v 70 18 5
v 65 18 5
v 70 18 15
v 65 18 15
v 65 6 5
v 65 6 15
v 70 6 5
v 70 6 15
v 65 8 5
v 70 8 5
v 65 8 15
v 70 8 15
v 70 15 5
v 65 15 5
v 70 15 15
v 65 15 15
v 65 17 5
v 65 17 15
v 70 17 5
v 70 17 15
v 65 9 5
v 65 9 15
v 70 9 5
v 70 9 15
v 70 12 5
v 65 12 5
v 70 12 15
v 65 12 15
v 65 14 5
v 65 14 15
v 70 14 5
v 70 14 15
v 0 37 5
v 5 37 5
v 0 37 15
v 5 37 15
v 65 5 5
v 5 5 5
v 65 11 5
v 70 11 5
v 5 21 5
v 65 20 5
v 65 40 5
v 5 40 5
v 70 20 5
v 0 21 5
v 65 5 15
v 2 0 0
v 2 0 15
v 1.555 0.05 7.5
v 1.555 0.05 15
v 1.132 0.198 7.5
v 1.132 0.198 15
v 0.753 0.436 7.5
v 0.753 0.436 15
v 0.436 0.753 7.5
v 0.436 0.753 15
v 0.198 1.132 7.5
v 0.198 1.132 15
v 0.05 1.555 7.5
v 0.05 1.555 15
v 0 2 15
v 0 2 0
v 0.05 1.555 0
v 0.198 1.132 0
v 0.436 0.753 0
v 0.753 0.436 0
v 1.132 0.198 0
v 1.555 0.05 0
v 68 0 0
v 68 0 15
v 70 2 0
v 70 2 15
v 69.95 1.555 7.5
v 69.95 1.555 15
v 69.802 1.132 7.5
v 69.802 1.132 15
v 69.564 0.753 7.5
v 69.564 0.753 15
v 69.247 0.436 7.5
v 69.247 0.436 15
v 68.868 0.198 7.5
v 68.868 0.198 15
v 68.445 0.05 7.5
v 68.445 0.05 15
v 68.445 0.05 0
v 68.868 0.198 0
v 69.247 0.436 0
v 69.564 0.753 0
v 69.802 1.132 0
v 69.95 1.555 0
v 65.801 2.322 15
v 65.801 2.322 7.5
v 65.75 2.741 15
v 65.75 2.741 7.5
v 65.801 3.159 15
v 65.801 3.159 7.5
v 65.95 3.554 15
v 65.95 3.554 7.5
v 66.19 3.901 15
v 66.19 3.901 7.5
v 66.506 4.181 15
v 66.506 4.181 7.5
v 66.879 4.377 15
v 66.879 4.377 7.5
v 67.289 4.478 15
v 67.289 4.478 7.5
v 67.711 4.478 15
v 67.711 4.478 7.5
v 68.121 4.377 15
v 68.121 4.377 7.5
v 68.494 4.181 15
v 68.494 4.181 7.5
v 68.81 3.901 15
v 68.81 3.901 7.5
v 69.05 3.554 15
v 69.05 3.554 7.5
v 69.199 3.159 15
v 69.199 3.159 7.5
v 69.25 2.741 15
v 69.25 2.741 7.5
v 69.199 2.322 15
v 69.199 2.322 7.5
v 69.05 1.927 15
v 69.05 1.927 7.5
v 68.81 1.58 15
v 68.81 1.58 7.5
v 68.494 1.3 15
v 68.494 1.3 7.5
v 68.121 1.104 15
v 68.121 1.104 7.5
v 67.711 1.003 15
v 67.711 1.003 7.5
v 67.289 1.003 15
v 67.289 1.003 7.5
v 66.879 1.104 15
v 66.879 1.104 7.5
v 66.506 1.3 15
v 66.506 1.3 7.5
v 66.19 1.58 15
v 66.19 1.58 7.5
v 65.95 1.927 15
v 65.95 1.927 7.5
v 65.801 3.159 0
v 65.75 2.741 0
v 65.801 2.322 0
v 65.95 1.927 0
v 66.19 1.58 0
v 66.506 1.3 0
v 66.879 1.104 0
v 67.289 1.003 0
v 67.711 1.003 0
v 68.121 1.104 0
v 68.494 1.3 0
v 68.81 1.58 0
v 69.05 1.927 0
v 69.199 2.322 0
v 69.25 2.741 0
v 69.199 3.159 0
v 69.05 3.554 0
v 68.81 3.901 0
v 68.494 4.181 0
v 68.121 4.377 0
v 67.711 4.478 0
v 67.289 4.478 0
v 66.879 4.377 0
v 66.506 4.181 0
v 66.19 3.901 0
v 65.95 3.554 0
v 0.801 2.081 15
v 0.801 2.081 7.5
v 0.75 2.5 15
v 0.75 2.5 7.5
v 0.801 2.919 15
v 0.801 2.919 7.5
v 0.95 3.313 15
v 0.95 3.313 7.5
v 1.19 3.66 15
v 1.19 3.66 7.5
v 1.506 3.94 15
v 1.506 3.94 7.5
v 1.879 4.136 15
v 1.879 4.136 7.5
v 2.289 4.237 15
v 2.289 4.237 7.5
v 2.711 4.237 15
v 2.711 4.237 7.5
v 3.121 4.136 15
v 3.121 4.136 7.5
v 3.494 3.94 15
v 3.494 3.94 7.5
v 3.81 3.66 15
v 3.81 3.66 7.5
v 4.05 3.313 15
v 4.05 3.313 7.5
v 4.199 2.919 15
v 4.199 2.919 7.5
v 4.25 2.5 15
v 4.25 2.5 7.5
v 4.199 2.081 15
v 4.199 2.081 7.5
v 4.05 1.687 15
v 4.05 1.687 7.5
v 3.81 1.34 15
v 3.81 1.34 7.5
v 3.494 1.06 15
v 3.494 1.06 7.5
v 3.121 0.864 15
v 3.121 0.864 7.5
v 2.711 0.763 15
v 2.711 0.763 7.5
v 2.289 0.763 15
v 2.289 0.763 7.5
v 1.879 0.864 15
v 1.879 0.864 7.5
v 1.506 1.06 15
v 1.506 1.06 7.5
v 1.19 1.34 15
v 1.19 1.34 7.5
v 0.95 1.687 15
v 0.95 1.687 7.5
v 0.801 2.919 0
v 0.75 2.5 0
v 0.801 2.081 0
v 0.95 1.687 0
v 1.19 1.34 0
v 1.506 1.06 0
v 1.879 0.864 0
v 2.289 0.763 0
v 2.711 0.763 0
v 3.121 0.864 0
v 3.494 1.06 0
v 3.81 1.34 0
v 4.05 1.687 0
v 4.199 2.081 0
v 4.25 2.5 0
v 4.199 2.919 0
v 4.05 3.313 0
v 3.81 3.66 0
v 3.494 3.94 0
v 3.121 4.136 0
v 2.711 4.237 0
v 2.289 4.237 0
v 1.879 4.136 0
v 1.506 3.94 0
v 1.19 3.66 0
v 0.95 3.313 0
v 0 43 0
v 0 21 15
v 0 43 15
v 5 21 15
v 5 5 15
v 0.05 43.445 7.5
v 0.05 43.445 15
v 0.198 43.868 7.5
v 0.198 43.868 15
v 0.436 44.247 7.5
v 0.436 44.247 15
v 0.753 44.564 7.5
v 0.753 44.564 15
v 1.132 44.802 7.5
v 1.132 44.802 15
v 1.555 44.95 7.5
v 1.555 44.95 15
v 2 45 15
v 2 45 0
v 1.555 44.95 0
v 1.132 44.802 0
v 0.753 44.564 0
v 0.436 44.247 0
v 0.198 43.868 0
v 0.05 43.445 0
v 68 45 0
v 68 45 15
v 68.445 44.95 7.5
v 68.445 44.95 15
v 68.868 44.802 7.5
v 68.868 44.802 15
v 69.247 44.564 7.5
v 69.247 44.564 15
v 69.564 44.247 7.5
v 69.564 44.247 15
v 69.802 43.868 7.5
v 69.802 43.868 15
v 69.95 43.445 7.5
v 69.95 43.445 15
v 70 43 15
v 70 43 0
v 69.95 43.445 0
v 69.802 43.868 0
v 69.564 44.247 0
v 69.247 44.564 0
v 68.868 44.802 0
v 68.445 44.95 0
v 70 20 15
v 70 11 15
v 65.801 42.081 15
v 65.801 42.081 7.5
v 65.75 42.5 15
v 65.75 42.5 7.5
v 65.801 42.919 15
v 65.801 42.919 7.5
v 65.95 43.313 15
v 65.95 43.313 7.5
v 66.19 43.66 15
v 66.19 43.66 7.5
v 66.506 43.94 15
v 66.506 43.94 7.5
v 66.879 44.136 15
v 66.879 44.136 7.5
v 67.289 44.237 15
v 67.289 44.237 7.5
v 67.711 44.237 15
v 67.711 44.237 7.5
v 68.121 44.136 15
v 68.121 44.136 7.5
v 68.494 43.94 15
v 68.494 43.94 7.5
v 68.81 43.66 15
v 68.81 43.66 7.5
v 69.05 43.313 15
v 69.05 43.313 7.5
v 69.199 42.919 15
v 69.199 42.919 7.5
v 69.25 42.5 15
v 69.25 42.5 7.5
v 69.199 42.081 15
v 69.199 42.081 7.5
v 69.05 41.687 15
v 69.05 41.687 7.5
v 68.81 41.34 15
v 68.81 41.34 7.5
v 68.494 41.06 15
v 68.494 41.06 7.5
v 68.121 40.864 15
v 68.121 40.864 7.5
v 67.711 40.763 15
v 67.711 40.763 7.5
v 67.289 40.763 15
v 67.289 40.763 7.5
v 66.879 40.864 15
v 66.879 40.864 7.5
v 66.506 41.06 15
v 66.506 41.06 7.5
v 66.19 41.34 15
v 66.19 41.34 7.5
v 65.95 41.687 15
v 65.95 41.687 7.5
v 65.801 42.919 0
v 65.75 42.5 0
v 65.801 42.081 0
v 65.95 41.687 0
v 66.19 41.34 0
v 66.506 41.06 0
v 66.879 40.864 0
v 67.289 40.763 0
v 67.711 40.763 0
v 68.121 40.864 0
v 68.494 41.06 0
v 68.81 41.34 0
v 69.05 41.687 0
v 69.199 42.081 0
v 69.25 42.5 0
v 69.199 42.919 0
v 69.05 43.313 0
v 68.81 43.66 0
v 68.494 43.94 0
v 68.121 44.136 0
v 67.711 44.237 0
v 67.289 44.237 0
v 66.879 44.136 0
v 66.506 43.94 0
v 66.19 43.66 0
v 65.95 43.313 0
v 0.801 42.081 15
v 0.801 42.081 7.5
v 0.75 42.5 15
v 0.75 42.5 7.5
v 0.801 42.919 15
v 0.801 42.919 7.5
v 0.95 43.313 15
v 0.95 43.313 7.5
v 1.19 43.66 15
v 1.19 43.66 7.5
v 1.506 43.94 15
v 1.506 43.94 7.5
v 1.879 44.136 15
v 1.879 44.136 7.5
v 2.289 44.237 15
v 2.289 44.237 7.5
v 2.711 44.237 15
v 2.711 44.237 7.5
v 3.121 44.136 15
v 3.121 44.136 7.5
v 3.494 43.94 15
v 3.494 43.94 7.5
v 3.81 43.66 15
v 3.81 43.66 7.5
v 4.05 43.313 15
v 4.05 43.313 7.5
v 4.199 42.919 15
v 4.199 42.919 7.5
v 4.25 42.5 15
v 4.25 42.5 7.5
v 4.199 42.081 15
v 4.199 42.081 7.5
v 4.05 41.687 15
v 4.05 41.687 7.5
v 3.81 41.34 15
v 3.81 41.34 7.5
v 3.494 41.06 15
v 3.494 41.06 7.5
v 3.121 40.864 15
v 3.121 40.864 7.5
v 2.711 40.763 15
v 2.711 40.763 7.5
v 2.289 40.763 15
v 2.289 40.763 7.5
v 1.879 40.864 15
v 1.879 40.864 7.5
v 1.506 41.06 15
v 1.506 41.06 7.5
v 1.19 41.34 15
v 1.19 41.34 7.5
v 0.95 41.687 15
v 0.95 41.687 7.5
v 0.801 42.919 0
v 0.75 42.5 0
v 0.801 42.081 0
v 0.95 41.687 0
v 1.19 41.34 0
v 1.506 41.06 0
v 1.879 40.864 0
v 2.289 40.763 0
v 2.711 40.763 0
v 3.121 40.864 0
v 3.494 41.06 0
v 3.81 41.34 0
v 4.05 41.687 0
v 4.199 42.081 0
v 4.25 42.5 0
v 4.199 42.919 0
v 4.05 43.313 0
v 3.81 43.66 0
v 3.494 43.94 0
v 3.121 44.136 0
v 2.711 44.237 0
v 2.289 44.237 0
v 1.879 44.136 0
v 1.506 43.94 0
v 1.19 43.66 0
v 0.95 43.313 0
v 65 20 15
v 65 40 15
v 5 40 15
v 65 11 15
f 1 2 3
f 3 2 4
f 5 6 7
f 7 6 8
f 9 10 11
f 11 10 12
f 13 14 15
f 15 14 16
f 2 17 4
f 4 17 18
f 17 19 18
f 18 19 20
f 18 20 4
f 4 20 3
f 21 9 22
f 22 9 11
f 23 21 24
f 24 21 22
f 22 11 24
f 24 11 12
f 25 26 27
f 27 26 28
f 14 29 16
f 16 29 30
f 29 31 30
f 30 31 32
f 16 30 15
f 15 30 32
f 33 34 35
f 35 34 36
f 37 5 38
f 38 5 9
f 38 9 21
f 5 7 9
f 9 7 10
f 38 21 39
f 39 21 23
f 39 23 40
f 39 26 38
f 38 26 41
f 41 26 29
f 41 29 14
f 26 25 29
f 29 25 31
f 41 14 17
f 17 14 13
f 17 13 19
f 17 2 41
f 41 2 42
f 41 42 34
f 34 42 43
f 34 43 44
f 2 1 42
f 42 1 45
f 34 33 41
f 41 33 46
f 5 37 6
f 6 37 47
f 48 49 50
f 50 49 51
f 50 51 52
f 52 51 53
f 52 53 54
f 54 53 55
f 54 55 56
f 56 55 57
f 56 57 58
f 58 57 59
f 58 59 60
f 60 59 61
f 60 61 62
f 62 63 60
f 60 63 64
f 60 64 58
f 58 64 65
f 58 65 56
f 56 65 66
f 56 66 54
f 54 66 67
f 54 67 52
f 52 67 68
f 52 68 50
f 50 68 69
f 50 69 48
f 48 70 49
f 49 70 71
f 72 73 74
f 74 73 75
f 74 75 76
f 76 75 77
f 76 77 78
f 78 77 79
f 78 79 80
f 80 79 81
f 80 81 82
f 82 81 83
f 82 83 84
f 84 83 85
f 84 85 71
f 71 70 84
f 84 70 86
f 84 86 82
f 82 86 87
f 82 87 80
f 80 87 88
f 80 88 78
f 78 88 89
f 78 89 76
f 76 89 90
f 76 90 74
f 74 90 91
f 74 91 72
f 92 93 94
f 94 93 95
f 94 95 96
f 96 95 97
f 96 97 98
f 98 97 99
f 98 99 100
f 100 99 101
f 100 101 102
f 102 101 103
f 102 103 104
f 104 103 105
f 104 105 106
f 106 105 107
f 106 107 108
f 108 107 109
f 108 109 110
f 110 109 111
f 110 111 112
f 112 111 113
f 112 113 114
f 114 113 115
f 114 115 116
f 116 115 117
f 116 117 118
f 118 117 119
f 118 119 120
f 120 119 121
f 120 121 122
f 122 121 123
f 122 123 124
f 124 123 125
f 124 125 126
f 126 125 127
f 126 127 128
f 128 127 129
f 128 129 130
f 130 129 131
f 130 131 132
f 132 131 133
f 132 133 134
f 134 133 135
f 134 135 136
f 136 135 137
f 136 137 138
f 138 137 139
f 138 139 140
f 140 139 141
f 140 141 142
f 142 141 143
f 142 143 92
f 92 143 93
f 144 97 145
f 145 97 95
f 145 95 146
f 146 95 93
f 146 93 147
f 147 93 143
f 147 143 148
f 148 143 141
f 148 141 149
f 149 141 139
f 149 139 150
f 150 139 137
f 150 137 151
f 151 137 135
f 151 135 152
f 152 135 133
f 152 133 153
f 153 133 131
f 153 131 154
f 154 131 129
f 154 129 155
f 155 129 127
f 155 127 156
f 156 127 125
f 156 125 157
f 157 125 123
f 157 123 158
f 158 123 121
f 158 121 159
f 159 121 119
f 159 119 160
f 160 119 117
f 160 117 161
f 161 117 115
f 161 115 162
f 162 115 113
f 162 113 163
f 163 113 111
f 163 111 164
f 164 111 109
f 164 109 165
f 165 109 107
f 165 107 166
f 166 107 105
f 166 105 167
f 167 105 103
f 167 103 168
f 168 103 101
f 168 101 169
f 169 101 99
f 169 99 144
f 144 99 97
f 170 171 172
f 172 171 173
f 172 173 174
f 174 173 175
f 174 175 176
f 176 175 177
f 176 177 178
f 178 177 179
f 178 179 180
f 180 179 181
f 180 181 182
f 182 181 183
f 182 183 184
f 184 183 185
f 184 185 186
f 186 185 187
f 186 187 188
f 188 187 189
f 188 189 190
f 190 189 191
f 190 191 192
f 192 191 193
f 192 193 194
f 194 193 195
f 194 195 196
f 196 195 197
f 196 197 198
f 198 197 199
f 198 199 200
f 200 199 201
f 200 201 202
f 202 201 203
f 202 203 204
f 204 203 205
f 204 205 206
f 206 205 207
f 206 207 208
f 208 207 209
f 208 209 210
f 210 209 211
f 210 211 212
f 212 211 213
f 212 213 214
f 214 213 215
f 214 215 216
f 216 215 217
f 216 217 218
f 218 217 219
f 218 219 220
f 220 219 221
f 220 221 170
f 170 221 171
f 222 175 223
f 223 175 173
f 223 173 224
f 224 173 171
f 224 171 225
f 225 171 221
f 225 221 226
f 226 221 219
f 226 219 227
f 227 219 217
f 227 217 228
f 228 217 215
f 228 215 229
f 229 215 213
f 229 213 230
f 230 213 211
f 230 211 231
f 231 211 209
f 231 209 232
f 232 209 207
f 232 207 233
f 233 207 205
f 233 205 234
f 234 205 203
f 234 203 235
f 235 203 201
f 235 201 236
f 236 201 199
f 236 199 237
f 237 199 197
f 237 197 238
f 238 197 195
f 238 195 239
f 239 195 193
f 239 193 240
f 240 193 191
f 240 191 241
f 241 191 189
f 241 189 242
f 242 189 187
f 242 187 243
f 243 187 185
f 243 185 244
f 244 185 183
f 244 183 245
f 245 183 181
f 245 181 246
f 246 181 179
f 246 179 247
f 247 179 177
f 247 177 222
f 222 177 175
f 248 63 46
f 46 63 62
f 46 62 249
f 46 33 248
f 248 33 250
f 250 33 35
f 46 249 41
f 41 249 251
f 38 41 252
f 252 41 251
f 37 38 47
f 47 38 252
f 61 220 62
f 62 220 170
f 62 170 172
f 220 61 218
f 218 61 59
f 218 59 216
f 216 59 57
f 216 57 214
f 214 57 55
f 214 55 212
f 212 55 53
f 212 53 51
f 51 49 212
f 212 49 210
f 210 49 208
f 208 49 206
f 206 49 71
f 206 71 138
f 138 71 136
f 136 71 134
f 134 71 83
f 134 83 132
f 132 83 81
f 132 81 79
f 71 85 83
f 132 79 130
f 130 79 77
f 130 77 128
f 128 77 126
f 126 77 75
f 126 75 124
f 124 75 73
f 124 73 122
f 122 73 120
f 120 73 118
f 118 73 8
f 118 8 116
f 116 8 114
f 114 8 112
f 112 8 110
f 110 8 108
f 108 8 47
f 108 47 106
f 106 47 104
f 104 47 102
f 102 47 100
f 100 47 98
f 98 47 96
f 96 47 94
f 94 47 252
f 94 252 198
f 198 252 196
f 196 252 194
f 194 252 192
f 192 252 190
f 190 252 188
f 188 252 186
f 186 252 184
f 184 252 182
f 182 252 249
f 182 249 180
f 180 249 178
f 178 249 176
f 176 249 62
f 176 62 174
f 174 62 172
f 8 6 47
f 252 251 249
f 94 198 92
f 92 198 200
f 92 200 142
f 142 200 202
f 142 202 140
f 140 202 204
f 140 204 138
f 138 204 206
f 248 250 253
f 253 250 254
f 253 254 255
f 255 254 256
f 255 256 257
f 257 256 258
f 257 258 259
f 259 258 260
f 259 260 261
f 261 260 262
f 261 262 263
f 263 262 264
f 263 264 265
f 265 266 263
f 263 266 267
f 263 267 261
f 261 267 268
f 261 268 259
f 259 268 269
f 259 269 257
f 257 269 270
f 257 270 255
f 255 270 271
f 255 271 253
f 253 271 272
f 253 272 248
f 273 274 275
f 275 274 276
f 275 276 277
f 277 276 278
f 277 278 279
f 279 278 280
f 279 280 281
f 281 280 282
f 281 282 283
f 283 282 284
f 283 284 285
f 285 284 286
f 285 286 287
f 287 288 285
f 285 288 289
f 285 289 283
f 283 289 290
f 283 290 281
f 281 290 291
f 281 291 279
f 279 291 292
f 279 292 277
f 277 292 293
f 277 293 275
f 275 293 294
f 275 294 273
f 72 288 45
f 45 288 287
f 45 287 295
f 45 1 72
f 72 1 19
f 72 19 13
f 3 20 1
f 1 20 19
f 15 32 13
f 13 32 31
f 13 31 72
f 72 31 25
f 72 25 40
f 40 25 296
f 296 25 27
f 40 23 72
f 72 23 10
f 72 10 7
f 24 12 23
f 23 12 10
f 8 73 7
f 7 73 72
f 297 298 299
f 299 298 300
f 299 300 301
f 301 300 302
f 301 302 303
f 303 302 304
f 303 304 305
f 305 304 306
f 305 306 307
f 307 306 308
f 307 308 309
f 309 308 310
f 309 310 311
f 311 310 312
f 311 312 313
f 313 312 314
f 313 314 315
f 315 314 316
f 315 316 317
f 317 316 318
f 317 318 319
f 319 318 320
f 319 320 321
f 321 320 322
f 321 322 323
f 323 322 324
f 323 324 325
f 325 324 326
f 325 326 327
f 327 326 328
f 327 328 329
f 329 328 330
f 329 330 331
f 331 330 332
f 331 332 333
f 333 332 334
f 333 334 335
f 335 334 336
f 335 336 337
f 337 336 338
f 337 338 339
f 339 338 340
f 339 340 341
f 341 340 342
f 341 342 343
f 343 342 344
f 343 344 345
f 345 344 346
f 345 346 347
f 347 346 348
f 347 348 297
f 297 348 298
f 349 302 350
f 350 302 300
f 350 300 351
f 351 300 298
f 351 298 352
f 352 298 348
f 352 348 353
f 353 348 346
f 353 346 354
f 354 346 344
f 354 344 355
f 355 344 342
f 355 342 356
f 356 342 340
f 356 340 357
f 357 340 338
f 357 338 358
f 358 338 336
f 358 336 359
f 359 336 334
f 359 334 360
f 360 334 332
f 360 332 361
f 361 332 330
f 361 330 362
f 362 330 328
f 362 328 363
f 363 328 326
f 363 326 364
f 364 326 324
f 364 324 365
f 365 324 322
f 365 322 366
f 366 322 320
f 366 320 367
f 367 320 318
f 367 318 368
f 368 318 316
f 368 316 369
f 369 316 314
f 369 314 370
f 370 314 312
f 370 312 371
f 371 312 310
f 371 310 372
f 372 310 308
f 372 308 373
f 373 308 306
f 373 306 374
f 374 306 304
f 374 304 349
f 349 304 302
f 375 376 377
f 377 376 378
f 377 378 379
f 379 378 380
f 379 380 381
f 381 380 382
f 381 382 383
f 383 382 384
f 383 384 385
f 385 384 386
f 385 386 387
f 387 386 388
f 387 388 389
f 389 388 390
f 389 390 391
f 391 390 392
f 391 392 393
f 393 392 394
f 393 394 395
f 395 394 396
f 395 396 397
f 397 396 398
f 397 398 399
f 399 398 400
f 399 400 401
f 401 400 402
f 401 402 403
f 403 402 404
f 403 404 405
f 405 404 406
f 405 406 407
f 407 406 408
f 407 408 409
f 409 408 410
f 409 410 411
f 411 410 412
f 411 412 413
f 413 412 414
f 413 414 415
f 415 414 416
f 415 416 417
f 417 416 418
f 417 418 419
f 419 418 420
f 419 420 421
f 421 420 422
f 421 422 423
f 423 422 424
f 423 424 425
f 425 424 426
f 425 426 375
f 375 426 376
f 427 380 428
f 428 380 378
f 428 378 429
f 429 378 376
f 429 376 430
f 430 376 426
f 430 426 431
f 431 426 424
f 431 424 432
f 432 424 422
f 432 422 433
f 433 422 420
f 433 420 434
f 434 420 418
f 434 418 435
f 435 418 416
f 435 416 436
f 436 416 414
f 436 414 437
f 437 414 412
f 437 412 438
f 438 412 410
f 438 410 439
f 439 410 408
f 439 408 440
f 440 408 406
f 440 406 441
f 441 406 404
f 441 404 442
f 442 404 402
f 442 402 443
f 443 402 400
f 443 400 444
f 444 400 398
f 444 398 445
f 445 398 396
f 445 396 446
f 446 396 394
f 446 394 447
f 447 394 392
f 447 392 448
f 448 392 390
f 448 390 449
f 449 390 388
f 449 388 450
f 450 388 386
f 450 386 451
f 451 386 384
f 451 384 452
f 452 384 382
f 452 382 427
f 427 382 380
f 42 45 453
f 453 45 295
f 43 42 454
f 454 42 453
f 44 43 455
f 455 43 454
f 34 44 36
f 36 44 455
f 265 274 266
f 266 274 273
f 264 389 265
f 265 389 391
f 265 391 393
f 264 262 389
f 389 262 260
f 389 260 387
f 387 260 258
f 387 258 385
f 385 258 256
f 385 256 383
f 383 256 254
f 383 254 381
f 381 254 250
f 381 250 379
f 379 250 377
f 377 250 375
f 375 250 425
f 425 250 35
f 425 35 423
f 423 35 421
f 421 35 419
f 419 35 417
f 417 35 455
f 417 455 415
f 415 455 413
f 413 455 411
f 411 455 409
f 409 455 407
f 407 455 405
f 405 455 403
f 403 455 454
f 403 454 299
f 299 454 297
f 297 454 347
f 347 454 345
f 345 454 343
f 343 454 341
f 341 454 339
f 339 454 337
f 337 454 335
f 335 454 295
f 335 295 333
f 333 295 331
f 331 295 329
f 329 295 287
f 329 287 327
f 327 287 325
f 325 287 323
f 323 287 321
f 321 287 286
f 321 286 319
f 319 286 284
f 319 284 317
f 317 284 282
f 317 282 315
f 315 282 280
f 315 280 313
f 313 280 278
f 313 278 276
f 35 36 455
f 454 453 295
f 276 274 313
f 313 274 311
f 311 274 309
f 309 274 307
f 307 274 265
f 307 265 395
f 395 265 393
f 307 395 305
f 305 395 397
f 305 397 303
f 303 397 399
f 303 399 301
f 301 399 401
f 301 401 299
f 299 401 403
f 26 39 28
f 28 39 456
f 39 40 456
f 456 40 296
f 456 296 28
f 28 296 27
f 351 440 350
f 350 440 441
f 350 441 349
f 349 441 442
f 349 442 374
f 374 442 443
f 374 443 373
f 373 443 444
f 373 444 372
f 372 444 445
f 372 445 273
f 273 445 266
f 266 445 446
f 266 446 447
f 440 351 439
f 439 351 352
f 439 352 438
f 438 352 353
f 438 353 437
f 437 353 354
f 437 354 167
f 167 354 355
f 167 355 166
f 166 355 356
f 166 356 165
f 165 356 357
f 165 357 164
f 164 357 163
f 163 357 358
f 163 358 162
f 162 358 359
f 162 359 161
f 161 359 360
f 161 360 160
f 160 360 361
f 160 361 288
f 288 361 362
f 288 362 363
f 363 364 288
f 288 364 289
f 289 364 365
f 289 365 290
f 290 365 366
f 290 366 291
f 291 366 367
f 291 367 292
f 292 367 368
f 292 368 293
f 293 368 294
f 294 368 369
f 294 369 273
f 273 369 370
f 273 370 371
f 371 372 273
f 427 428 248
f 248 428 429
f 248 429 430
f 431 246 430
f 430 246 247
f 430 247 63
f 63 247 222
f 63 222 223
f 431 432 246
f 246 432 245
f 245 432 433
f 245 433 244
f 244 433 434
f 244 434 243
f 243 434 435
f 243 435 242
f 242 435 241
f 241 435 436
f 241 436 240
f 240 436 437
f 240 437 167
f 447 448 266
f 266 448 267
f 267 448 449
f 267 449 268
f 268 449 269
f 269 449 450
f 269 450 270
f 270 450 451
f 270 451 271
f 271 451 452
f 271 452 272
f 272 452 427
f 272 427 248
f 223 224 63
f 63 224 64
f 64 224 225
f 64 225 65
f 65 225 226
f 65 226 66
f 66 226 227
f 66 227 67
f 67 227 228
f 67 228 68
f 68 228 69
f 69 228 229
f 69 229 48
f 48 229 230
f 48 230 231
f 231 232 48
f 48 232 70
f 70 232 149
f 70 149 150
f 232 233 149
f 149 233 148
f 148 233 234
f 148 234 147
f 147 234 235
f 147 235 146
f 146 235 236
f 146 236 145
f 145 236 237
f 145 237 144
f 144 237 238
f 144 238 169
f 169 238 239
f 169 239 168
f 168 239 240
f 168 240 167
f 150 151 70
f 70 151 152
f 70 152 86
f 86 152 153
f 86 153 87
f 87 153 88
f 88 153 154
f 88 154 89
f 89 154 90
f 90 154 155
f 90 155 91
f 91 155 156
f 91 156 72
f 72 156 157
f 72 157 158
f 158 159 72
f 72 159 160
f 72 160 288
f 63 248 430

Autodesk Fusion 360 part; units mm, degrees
sketch "Sketch1" plane through (0, 0, 0) normal (0, 0, 1) x (1, 0, 0)
  line L0 (0, 0) -> (70, 0)
  line L1 (70, 0) -> (70, 45)
  line L2 (70, 45) -> (0, 45)
  line L3 (0, 45) -> (0, 0)
  line L4 (5, 40) -> (65, 40)
  line L5 (65, 40) -> (65, 5)
  line L6 (65, 5) -> (5, 5)
  line L7 (5, 5) -> (5, 40)
  line L8 (70, 19) -> (70, 21)
  line L9 (70, 16) -> (70, 18)
  line L10 (65, 18) -> (65, 16)
  line L11 (65, 15) -> (65, 13)
  line L12 (70, 10) -> (70, 12)
  line L13 (65, 12) -> (65, 10)
  line L14 (0, 37) -> (5, 37)
  line L15 (5, 37) -> (5, 21)
  line L16 (5, 21) -> (0, 21)
  line L17 (0, 21) -> (0, 37)
  line L18 (65, 18) -> (70, 18)
  line L19 (70, 18) -> (70, 20)
  line L20 (70, 20) -> (65, 20)
  line L21 (65, 20) -> (65, 18)
  line L22 (65, 15) -> (70, 15)
  line L23 (70, 15) -> (70, 17)
  line L24 (70, 17) -> (65, 17)
  line L25 (65, 17) -> (65, 15)
  line L26 (65, 12) -> (70, 12)
  line L27 (70, 12) -> (70, 14)
  line L28 (70, 14) -> (65, 14)
  line L29 (65, 14) -> (65, 12)
  line L30 (65, 11) -> (70, 11)
  line L31 (70, 11) -> (70, 9)
  line L32 (70, 9) -> (65, 9)
  line L33 (65, 9) -> (65, 11)
  line L34 (70, 8) -> (65, 8)
  line L35 (65, 8) -> (65, 6)
  line L36 (65, 6) -> (70, 6)
  line L37 (70, 6) -> (70, 8)
  circle A0 centre (67.5, 42.5) radius 1.75
  circle A1 centre (2.5, 2.5) radius 1.75
  circle A2 centre (2.5, 42.5) radius 1.75
  circle A3 centre (67.5, 2.7406) radius 1.75
  point P0 (-50.3404, 3.4837)
  dimension "d1" = 45
  dimension "d2" = 70
  dimension "d3" = 35
  dimension "d4" = 60
  dimension "d5" = 5
  dimension "d6" = 5
  dimension "d7" = 16
  dimension "d8" = 3.5
  dimension "d9" = 2.5
  dimension "d10" = 2.5
  dimension "d11" = 3.5
  dimension "d12" = 2.5
  dimension "d13" = 2.5
  dimension "d14" = 3.5
  dimension "d15" = 2.5
  dimension "d16" = 2.5
  dimension "d17" = 3.5
  dimension "d18" = 2.5
extrude "Extrude1" add sketch "Sketch1" along normal blind 15 contours L0 L1 L3 L5 L6 L7 L16 L36 | L1 L2 L3 L4 L5 L7 L8 L14 L20 | L1 L5 L32 L34 | L1 L5 L12 L13 L26 L30 | L1 L5 L9 L10 L18 L24 | L1 L5 L11 L22 L28 makes body 1 at (66.6667, 11, 5) makes body 2 at (46.6667, 45, 10) makes body 3 at (68.3333, 14, 5) makes body 4 at (68.3333, 9, 5) makes body 5 at (23.3333, 0, 10) makes body 6 at (66.6667, 18, 5)
extrude "Extrude2" add sketch "Sketch1" along normal blind 5 separate body contours L4 L5 L6 L7 L10 L11 L13 L15 L21 L25 L29 L33 L35 makes body 7
fillet "Fillet1" radius 2 4 edges at (70, 45, 7.5) (0, 45, 7.5) (70, 0, 7.5) (0, 0, 7.5) on bodies 2 5
extrude "Extrude3" add sketch "Sketch1" along normal blind 5 contours L3 L7 L14 L15 L16 L17 bodies 2 5 7
extrude "Extrude4" add sketch "Sketch1" along normal blind 5 contours L1 L5 L34 L35 L36 L37 | L1 L5 L12 L13 L30 L31 L32 L33 | L1 L5 L8 L18 L19 L20 L21 | L1 L5 L11 L26 L27 L28 L29 | L1 L5 L9 L10 L22 L23 L24 L25 bodies 1 2 3 4 6
